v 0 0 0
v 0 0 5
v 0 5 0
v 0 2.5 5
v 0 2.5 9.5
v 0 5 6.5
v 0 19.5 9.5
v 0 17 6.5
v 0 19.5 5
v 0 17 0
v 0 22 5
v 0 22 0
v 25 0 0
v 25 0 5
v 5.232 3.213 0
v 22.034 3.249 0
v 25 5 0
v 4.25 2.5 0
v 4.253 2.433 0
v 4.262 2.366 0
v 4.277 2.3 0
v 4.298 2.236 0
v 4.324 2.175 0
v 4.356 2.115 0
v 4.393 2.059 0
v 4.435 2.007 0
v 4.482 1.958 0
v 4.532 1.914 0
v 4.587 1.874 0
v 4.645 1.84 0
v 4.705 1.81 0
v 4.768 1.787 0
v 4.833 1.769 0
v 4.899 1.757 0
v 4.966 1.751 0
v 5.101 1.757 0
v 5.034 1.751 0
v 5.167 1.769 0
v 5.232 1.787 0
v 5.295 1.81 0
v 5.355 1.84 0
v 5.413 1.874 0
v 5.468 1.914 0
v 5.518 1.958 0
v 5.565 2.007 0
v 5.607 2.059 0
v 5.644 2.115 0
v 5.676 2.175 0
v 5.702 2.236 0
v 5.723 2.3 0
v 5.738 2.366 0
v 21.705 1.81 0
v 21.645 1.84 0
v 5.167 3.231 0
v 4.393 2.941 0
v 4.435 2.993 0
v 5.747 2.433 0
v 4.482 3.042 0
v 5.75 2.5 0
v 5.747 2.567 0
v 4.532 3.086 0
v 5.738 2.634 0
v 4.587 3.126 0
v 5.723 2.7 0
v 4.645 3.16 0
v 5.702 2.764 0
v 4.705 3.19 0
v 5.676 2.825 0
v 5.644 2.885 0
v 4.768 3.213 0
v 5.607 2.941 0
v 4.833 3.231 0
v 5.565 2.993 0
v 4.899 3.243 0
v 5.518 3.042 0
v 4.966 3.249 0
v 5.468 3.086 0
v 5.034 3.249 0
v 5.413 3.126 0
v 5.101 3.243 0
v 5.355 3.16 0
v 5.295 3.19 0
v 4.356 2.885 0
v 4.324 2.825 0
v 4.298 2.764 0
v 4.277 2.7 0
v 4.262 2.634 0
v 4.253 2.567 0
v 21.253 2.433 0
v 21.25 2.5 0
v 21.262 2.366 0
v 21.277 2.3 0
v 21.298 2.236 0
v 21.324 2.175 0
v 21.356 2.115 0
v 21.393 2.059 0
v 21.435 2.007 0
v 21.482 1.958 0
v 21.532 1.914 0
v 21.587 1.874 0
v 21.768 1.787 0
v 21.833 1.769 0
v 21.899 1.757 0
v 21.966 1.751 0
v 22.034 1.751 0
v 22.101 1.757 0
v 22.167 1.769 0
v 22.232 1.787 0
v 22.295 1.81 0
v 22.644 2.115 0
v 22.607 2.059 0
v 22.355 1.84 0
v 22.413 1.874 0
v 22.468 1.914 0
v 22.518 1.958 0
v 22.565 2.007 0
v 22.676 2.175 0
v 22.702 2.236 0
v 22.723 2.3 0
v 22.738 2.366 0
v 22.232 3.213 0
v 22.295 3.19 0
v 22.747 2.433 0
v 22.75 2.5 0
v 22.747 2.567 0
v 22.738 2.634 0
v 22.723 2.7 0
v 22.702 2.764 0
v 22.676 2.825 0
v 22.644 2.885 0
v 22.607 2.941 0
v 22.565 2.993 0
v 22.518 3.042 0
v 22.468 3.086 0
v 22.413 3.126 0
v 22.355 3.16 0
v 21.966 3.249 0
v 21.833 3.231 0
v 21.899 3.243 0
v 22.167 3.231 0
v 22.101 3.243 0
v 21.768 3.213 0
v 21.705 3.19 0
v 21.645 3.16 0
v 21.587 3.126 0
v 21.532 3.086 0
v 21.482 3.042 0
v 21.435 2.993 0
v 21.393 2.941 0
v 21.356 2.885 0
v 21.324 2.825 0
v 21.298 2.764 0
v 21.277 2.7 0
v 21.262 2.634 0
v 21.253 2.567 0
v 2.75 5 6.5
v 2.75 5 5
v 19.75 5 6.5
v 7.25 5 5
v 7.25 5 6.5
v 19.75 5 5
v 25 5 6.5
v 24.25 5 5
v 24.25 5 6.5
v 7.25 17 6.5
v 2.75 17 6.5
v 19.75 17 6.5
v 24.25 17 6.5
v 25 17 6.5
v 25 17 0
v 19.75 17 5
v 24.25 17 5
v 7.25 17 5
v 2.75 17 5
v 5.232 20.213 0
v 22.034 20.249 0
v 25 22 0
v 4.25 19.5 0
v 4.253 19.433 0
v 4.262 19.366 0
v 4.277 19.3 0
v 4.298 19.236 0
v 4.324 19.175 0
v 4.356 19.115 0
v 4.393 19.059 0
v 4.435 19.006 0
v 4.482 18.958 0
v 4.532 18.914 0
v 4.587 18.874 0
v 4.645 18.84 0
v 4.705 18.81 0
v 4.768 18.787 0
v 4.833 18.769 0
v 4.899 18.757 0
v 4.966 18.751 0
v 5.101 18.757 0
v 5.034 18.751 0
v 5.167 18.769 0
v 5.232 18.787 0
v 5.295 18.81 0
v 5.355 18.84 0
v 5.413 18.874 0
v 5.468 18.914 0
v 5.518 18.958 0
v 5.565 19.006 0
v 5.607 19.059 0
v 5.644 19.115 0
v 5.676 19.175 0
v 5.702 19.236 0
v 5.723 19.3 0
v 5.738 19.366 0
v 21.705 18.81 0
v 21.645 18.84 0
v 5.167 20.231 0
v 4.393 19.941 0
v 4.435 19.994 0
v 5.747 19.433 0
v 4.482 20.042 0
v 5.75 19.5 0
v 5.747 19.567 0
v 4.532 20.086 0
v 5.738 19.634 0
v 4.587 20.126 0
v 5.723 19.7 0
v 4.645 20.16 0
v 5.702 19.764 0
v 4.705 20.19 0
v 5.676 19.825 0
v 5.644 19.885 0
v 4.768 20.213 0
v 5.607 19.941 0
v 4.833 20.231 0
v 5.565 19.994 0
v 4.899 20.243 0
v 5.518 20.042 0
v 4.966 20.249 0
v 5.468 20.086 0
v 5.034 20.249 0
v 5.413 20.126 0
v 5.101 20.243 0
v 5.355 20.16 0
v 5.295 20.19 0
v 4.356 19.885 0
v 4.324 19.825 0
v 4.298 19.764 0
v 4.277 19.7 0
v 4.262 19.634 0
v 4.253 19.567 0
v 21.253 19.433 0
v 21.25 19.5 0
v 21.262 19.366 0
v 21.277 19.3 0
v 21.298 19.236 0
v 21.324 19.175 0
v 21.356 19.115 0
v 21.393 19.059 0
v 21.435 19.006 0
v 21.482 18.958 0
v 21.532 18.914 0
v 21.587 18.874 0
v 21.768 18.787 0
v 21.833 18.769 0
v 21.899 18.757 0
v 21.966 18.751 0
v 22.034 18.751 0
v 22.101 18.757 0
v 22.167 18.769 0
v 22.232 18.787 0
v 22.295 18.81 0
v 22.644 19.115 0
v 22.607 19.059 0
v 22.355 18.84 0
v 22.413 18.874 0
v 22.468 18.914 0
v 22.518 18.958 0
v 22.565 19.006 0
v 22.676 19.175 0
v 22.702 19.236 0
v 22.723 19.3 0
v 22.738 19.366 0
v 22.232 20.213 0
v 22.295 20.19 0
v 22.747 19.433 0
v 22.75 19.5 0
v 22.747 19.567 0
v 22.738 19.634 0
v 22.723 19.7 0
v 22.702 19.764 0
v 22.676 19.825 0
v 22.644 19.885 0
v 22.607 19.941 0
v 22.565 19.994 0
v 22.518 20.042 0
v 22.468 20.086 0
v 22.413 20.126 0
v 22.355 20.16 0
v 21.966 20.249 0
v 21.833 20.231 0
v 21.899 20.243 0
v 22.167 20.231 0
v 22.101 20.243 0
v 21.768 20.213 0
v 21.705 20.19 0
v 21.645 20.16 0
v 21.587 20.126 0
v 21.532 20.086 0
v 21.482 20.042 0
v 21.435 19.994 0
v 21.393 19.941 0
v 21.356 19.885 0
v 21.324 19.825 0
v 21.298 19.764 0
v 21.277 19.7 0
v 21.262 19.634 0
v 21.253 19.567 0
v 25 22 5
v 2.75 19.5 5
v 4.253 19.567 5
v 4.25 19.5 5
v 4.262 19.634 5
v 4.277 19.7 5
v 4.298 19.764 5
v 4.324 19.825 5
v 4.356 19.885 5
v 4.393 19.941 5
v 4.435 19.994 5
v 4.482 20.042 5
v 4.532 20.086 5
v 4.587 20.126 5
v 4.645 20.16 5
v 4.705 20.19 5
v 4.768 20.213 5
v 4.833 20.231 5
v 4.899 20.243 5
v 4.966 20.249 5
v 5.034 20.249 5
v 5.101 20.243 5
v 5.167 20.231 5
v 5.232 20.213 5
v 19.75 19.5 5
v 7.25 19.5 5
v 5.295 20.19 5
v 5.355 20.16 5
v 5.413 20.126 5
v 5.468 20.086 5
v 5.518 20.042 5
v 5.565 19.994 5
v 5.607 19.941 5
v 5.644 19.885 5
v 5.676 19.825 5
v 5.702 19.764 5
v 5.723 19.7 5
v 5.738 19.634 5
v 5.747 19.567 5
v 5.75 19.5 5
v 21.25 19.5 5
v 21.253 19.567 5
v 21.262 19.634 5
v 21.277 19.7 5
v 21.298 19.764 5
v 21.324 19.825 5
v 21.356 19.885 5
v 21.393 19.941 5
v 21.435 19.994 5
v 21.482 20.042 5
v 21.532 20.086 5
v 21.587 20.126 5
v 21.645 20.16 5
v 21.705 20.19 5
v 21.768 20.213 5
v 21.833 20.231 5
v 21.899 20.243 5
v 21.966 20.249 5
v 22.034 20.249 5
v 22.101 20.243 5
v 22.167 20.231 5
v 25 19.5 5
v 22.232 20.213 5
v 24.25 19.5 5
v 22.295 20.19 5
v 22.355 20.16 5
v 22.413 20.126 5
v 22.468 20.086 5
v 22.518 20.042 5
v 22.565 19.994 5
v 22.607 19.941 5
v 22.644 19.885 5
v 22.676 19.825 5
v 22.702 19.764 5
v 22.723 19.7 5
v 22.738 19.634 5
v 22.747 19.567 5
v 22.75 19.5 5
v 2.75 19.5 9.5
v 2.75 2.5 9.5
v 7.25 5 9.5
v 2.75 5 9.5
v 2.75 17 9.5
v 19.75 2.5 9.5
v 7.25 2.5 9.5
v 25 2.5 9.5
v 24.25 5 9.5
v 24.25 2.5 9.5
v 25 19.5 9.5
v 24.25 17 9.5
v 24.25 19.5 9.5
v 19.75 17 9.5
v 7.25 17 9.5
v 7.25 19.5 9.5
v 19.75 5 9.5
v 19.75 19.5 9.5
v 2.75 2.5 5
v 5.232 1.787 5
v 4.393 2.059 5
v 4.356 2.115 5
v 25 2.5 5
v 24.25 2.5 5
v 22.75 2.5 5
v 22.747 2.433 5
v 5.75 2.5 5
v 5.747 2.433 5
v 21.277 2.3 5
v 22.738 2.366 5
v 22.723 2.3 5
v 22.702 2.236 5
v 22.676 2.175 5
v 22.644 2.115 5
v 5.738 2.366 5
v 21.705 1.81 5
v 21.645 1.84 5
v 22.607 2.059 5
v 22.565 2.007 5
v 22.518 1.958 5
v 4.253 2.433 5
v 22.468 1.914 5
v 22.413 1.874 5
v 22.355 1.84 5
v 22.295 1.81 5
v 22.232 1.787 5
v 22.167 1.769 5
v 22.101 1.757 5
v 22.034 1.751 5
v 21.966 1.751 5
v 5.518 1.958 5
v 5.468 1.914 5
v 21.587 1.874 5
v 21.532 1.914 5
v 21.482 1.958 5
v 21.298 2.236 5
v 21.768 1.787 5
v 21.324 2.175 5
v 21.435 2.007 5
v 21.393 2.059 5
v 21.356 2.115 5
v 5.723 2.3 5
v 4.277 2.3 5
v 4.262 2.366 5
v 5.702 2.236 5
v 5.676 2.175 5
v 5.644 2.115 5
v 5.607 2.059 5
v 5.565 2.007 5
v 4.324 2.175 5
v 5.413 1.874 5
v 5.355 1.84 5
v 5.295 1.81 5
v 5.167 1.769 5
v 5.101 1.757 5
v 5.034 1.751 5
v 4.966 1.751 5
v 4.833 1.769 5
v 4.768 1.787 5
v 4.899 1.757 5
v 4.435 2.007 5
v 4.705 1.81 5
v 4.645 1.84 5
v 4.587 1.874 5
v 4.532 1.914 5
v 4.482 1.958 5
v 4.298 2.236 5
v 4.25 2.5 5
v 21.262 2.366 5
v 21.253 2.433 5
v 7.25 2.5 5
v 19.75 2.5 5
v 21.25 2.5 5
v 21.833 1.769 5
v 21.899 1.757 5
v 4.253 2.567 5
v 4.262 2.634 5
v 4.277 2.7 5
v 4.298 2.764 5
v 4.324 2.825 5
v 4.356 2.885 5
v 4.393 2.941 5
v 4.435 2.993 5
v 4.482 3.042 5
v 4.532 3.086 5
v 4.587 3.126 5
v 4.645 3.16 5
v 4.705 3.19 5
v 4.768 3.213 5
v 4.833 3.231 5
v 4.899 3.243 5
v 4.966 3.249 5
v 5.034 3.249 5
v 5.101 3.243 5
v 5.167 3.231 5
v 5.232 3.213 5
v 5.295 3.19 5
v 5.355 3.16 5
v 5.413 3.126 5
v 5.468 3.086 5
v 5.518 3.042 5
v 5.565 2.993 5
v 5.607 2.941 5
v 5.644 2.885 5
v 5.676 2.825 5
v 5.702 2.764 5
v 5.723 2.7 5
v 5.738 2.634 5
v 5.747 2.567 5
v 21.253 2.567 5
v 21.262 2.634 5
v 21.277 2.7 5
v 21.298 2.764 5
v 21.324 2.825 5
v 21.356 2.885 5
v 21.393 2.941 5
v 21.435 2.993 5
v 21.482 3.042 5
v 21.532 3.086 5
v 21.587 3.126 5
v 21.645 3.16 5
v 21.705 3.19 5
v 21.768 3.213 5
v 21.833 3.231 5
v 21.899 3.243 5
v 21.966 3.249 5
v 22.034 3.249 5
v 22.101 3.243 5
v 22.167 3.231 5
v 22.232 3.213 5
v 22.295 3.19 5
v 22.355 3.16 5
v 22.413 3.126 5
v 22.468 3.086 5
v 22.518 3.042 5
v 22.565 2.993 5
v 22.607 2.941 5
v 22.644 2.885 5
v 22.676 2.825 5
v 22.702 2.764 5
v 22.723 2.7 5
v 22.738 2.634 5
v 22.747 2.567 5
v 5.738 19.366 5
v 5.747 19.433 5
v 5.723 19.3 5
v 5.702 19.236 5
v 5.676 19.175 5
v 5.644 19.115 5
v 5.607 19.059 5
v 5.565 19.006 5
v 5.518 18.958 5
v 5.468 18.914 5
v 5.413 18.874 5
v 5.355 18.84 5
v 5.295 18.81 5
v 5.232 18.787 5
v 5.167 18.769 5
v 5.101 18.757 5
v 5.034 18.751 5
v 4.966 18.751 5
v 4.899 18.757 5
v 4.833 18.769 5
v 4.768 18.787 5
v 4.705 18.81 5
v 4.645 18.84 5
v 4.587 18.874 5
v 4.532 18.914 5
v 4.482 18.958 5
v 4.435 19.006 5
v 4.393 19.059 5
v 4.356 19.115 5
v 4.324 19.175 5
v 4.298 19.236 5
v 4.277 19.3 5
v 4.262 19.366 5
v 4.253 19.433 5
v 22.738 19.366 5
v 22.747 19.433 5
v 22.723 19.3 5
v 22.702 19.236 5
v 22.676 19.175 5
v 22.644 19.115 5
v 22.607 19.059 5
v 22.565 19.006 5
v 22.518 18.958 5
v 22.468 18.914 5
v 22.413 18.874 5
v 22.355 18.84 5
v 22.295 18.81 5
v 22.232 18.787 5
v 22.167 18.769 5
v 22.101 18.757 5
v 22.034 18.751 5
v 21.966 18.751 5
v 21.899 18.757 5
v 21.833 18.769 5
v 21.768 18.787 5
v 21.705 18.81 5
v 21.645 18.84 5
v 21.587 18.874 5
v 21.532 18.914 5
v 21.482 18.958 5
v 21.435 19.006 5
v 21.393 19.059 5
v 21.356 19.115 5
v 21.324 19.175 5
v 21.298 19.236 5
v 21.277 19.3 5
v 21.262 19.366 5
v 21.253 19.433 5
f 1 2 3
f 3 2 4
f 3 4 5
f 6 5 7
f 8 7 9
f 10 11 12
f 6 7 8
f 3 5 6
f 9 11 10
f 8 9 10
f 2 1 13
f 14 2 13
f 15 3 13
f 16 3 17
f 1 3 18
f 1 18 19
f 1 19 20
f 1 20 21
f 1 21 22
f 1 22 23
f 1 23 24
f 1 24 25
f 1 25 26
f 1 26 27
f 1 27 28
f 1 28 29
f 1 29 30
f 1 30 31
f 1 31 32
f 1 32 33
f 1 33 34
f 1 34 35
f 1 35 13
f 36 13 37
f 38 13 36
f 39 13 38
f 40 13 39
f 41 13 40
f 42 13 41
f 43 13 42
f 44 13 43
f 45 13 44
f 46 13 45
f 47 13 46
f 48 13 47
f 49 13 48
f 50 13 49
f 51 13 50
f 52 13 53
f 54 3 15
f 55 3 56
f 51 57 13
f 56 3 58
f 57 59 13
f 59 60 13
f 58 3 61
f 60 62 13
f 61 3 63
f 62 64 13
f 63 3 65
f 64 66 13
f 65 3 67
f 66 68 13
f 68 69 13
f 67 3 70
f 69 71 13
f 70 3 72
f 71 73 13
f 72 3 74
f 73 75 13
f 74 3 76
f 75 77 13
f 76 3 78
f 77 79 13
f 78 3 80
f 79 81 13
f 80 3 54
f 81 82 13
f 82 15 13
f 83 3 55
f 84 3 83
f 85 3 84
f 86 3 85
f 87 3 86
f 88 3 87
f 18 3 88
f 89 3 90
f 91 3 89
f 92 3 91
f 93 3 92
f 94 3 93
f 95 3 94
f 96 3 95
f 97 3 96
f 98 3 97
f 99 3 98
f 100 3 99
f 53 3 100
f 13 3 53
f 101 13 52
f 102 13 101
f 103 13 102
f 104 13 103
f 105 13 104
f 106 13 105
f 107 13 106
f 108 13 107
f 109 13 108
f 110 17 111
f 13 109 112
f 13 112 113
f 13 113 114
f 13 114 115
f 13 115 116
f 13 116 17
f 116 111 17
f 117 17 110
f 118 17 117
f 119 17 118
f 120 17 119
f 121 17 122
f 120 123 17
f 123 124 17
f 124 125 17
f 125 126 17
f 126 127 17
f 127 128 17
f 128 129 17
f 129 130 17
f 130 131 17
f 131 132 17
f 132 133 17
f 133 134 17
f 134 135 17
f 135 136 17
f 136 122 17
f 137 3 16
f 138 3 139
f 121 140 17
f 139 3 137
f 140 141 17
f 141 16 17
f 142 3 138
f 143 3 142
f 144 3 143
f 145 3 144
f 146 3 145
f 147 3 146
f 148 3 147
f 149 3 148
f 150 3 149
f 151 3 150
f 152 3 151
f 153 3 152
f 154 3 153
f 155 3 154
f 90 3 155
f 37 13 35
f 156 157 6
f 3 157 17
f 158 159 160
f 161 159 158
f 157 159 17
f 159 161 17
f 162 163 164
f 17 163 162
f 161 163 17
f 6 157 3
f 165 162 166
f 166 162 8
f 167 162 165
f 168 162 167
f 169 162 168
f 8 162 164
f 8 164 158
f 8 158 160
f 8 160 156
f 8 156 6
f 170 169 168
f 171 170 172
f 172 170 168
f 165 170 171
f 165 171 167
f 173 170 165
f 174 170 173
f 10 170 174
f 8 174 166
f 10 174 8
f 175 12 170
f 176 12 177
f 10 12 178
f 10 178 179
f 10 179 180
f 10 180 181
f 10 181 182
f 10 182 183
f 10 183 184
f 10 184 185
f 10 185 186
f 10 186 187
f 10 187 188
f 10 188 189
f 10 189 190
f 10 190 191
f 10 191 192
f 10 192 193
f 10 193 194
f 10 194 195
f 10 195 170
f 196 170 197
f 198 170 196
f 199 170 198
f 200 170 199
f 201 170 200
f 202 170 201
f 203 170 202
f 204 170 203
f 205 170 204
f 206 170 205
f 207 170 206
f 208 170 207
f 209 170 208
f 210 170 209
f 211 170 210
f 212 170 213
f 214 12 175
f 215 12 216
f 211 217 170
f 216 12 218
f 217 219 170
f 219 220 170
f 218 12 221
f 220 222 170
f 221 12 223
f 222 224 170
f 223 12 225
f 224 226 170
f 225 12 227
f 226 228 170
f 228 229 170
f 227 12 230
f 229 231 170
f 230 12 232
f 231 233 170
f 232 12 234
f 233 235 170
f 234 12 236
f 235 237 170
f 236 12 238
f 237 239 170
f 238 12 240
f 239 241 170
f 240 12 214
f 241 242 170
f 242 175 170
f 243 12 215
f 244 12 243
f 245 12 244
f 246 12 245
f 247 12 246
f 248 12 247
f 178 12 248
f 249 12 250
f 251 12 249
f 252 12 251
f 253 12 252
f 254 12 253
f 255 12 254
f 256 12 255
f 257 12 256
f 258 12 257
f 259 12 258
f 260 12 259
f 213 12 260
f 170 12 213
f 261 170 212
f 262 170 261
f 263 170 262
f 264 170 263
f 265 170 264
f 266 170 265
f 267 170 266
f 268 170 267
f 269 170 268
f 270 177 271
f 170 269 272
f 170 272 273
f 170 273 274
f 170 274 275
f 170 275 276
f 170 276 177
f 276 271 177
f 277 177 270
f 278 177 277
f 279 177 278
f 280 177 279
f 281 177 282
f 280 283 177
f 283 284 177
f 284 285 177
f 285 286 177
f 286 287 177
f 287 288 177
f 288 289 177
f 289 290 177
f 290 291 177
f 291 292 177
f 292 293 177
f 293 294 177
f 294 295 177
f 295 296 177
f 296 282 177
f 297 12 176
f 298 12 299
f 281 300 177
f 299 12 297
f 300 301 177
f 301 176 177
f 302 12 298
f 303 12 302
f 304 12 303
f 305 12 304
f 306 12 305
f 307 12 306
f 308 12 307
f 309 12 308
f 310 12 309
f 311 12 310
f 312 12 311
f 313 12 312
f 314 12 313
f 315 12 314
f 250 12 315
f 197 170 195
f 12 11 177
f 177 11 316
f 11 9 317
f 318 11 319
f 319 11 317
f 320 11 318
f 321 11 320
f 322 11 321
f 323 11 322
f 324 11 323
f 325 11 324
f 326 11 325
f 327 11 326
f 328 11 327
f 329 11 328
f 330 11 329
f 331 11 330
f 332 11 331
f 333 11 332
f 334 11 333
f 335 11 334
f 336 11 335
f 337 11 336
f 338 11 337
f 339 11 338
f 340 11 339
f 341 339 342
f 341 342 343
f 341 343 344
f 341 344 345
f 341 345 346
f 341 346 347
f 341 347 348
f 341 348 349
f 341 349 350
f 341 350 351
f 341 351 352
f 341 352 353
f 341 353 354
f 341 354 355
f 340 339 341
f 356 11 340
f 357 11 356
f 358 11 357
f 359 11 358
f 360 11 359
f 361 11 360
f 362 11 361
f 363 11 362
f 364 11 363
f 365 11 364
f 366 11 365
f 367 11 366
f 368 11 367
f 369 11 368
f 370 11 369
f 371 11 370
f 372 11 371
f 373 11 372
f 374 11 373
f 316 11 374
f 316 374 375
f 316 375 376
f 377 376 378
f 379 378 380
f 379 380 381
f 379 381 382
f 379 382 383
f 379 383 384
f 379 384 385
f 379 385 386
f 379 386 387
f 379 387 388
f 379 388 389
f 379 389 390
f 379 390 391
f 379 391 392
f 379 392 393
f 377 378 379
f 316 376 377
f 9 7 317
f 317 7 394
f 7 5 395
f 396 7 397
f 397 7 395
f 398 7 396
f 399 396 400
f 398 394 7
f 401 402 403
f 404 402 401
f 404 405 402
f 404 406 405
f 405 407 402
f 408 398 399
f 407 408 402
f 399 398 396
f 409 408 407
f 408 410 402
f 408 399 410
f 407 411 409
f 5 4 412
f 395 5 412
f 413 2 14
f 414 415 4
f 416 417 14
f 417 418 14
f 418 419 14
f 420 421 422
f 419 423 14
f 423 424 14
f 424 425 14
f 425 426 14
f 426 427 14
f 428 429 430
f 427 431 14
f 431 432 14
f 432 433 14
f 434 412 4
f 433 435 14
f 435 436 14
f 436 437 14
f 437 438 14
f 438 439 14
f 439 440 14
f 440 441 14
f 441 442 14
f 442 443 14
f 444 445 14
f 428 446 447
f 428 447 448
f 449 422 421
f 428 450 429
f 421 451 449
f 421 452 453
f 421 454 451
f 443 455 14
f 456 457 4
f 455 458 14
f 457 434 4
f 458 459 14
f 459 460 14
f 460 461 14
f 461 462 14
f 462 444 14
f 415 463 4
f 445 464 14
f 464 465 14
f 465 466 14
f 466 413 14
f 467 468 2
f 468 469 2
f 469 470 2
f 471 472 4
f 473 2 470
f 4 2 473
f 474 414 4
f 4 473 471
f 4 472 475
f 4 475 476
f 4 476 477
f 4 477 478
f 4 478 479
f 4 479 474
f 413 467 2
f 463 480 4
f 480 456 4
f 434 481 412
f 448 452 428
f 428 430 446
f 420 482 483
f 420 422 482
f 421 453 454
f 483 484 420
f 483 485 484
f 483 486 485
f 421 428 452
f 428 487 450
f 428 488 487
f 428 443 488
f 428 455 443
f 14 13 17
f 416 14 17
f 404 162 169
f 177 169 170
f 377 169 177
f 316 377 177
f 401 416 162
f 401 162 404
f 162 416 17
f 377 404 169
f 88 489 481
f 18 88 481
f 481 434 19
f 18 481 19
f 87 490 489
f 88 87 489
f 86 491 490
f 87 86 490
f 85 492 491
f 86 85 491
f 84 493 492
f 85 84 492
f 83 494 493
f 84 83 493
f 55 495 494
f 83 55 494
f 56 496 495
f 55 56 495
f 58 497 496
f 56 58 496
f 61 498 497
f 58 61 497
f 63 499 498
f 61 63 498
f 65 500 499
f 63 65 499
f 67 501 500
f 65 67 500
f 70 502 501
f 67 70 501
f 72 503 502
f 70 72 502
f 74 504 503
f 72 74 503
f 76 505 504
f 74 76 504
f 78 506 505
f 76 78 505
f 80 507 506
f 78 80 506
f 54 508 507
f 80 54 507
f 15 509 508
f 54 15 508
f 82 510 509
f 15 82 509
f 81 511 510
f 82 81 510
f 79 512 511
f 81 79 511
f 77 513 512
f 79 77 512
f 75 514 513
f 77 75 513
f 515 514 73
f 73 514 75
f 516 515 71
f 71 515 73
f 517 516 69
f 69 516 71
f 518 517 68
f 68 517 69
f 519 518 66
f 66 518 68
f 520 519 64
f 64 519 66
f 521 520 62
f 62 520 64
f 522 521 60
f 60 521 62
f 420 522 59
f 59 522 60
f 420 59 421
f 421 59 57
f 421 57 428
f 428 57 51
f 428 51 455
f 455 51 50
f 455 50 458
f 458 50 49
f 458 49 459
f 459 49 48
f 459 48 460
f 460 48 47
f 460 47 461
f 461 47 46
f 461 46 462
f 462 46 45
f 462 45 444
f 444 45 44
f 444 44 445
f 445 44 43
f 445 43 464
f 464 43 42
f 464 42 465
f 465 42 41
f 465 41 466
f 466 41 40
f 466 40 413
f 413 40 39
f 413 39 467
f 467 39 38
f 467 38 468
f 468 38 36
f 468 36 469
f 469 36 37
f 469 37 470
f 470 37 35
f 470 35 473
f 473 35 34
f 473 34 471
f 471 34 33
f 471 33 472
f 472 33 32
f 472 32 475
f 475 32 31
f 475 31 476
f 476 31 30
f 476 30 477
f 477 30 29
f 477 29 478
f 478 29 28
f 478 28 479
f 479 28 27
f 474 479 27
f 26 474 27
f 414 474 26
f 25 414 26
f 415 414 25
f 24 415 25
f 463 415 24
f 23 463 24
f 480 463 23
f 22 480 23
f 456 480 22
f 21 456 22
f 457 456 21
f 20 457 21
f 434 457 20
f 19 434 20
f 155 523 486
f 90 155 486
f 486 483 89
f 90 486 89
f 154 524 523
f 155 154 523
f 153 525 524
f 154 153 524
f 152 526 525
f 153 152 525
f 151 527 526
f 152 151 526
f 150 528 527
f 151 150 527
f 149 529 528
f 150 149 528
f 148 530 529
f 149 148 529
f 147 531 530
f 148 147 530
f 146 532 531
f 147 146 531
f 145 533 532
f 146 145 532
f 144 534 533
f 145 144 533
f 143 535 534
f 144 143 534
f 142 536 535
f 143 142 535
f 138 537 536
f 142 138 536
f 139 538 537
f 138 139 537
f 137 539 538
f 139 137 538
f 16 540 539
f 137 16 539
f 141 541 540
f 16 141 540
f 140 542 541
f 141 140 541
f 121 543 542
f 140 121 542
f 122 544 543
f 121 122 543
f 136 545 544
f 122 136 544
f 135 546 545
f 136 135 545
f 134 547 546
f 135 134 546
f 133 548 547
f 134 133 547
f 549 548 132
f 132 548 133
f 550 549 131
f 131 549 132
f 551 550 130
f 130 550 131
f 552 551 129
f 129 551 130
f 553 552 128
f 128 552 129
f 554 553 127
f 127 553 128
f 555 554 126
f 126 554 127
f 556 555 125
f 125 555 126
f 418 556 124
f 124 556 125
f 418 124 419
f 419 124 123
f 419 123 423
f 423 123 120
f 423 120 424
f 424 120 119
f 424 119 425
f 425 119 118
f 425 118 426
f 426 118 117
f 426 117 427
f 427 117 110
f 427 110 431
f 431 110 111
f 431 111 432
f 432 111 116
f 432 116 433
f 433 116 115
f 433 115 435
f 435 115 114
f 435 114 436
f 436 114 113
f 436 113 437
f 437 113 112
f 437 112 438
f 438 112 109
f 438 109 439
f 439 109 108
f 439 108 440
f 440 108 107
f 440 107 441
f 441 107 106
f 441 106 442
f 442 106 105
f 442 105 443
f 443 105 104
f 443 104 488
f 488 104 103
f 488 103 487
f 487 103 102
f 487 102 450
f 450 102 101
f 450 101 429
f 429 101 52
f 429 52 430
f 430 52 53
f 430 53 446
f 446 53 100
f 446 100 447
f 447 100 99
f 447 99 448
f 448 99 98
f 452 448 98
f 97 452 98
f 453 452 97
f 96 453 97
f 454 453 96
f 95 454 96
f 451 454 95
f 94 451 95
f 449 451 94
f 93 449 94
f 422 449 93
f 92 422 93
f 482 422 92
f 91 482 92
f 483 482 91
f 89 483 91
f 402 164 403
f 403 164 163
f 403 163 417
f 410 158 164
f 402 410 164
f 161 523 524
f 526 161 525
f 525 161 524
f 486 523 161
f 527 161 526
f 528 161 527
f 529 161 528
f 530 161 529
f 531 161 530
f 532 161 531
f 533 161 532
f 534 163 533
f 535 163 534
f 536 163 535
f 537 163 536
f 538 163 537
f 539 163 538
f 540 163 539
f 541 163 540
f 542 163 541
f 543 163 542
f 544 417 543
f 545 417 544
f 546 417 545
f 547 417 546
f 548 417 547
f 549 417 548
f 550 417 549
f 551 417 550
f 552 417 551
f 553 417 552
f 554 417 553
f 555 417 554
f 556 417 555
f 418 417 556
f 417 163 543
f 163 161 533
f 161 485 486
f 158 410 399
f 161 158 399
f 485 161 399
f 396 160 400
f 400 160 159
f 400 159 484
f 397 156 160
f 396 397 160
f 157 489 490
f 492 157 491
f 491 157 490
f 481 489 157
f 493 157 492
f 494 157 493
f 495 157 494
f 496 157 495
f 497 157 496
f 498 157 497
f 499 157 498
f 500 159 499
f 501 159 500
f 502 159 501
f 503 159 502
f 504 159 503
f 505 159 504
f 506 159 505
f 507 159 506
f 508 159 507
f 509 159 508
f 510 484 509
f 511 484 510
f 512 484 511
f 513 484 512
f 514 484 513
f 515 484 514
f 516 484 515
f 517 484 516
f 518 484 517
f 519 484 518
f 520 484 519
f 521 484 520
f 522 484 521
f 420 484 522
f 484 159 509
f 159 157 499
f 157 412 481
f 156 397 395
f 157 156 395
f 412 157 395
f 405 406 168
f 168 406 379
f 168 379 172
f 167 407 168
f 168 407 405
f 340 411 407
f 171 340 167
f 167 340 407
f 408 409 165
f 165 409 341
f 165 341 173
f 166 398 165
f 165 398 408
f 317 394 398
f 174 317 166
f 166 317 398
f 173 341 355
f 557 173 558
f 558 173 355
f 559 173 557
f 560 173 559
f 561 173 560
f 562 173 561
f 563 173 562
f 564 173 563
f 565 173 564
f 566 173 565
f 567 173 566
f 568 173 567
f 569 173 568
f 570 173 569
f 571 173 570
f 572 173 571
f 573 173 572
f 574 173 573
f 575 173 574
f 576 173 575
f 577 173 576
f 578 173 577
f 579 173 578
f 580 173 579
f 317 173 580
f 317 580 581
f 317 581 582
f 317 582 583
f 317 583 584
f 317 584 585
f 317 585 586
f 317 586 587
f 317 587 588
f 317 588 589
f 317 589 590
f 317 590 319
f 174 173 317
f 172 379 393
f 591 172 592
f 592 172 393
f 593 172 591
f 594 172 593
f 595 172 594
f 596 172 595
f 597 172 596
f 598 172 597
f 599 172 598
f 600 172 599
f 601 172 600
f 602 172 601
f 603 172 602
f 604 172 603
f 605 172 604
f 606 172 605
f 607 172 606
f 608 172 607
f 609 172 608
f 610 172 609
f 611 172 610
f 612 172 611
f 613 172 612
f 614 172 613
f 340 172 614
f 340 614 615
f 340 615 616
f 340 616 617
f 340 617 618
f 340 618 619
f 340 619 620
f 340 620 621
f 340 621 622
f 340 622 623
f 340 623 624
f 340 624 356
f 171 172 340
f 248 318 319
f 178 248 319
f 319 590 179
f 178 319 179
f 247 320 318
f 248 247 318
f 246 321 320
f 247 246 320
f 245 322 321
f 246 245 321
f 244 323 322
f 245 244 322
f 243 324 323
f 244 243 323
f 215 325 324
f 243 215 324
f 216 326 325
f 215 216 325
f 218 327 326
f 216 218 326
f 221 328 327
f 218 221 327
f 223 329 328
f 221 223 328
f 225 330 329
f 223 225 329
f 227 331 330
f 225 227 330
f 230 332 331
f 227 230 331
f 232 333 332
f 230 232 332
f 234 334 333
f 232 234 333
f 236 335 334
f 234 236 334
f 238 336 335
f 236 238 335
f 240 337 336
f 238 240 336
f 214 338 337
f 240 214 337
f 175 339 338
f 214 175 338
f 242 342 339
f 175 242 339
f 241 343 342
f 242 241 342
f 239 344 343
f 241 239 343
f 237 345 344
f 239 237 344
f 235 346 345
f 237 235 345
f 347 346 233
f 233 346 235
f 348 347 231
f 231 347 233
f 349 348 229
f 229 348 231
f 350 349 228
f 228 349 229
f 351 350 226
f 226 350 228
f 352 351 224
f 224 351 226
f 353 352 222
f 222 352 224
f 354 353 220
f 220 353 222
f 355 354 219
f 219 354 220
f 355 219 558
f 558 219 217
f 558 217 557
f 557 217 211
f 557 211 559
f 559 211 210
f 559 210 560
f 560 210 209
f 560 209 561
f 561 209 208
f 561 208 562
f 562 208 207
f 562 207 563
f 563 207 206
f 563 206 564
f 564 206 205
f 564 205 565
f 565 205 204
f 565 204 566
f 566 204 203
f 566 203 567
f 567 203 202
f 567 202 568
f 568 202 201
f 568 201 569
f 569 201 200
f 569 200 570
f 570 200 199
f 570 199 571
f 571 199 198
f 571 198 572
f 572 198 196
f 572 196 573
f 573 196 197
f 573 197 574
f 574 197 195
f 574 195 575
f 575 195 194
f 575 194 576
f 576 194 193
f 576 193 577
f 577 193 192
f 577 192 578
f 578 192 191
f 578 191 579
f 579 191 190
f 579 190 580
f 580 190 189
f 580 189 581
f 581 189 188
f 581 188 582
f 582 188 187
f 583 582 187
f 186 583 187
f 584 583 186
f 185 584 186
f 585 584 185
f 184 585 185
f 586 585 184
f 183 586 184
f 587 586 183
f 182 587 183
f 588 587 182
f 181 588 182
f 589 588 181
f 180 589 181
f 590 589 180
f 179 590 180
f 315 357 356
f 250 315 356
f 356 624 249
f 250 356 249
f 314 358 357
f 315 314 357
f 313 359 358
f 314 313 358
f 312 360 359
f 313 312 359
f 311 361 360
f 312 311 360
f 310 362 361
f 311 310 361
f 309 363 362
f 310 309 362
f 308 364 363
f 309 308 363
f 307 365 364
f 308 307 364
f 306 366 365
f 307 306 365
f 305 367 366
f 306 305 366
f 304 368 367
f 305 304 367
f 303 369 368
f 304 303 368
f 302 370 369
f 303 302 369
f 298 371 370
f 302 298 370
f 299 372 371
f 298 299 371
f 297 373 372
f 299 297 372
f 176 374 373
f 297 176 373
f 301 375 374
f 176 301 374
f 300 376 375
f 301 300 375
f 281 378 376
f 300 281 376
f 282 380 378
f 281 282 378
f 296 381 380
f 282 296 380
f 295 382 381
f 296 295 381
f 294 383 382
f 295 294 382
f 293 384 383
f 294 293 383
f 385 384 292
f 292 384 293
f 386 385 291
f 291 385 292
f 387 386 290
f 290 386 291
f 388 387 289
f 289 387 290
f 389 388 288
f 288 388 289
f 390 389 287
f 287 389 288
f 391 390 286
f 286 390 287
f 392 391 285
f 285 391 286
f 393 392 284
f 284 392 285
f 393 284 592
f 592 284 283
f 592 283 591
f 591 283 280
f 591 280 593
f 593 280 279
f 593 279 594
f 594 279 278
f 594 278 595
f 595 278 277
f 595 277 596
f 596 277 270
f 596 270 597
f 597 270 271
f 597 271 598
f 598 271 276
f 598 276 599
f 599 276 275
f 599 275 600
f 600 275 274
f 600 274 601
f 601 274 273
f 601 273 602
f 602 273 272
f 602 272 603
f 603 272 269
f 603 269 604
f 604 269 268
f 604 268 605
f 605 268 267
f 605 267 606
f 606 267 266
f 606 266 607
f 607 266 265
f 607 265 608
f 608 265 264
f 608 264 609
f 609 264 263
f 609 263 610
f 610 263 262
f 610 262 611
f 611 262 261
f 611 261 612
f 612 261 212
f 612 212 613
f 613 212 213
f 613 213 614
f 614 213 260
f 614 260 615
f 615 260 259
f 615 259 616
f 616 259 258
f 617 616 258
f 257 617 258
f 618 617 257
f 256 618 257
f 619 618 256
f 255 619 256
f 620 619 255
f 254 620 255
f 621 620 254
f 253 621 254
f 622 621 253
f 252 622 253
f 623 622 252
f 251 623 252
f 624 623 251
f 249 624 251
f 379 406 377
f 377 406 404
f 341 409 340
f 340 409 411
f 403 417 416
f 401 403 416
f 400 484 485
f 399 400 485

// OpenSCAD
$fn=70;
difference()
{
  union()
  {
    translate([0,2.5])cube([25,17,9.5]);
    cube([25,22,5]);
  }
  //6.5
  //Forats
  translate([5,2.5,-1])cylinder(r=0.75,h=8);
  translate([5,42-22.5,-1])cylinder(r=0.75,h=8);
  translate([22,2.5,-1])cylinder(r=0.75,h=8);
  translate([22,42-22.5,-1])cylinder(r=0.75,h=8);
  translate([-0.1,5,-0.1])cube([50,12,6.6]);
  translate([22-4.5/2,2.5,5])cube([4.5,2.5,80]);
  translate([5-4.5/2,2.5,5])cube([4.5,2.5,80]);
  translate([5-4.5/2,42-25,5])cube([4.5,2.5,80]);
  translate([22-4.5/2,42-25,5])cube([4.5,2.5,80]);
}
